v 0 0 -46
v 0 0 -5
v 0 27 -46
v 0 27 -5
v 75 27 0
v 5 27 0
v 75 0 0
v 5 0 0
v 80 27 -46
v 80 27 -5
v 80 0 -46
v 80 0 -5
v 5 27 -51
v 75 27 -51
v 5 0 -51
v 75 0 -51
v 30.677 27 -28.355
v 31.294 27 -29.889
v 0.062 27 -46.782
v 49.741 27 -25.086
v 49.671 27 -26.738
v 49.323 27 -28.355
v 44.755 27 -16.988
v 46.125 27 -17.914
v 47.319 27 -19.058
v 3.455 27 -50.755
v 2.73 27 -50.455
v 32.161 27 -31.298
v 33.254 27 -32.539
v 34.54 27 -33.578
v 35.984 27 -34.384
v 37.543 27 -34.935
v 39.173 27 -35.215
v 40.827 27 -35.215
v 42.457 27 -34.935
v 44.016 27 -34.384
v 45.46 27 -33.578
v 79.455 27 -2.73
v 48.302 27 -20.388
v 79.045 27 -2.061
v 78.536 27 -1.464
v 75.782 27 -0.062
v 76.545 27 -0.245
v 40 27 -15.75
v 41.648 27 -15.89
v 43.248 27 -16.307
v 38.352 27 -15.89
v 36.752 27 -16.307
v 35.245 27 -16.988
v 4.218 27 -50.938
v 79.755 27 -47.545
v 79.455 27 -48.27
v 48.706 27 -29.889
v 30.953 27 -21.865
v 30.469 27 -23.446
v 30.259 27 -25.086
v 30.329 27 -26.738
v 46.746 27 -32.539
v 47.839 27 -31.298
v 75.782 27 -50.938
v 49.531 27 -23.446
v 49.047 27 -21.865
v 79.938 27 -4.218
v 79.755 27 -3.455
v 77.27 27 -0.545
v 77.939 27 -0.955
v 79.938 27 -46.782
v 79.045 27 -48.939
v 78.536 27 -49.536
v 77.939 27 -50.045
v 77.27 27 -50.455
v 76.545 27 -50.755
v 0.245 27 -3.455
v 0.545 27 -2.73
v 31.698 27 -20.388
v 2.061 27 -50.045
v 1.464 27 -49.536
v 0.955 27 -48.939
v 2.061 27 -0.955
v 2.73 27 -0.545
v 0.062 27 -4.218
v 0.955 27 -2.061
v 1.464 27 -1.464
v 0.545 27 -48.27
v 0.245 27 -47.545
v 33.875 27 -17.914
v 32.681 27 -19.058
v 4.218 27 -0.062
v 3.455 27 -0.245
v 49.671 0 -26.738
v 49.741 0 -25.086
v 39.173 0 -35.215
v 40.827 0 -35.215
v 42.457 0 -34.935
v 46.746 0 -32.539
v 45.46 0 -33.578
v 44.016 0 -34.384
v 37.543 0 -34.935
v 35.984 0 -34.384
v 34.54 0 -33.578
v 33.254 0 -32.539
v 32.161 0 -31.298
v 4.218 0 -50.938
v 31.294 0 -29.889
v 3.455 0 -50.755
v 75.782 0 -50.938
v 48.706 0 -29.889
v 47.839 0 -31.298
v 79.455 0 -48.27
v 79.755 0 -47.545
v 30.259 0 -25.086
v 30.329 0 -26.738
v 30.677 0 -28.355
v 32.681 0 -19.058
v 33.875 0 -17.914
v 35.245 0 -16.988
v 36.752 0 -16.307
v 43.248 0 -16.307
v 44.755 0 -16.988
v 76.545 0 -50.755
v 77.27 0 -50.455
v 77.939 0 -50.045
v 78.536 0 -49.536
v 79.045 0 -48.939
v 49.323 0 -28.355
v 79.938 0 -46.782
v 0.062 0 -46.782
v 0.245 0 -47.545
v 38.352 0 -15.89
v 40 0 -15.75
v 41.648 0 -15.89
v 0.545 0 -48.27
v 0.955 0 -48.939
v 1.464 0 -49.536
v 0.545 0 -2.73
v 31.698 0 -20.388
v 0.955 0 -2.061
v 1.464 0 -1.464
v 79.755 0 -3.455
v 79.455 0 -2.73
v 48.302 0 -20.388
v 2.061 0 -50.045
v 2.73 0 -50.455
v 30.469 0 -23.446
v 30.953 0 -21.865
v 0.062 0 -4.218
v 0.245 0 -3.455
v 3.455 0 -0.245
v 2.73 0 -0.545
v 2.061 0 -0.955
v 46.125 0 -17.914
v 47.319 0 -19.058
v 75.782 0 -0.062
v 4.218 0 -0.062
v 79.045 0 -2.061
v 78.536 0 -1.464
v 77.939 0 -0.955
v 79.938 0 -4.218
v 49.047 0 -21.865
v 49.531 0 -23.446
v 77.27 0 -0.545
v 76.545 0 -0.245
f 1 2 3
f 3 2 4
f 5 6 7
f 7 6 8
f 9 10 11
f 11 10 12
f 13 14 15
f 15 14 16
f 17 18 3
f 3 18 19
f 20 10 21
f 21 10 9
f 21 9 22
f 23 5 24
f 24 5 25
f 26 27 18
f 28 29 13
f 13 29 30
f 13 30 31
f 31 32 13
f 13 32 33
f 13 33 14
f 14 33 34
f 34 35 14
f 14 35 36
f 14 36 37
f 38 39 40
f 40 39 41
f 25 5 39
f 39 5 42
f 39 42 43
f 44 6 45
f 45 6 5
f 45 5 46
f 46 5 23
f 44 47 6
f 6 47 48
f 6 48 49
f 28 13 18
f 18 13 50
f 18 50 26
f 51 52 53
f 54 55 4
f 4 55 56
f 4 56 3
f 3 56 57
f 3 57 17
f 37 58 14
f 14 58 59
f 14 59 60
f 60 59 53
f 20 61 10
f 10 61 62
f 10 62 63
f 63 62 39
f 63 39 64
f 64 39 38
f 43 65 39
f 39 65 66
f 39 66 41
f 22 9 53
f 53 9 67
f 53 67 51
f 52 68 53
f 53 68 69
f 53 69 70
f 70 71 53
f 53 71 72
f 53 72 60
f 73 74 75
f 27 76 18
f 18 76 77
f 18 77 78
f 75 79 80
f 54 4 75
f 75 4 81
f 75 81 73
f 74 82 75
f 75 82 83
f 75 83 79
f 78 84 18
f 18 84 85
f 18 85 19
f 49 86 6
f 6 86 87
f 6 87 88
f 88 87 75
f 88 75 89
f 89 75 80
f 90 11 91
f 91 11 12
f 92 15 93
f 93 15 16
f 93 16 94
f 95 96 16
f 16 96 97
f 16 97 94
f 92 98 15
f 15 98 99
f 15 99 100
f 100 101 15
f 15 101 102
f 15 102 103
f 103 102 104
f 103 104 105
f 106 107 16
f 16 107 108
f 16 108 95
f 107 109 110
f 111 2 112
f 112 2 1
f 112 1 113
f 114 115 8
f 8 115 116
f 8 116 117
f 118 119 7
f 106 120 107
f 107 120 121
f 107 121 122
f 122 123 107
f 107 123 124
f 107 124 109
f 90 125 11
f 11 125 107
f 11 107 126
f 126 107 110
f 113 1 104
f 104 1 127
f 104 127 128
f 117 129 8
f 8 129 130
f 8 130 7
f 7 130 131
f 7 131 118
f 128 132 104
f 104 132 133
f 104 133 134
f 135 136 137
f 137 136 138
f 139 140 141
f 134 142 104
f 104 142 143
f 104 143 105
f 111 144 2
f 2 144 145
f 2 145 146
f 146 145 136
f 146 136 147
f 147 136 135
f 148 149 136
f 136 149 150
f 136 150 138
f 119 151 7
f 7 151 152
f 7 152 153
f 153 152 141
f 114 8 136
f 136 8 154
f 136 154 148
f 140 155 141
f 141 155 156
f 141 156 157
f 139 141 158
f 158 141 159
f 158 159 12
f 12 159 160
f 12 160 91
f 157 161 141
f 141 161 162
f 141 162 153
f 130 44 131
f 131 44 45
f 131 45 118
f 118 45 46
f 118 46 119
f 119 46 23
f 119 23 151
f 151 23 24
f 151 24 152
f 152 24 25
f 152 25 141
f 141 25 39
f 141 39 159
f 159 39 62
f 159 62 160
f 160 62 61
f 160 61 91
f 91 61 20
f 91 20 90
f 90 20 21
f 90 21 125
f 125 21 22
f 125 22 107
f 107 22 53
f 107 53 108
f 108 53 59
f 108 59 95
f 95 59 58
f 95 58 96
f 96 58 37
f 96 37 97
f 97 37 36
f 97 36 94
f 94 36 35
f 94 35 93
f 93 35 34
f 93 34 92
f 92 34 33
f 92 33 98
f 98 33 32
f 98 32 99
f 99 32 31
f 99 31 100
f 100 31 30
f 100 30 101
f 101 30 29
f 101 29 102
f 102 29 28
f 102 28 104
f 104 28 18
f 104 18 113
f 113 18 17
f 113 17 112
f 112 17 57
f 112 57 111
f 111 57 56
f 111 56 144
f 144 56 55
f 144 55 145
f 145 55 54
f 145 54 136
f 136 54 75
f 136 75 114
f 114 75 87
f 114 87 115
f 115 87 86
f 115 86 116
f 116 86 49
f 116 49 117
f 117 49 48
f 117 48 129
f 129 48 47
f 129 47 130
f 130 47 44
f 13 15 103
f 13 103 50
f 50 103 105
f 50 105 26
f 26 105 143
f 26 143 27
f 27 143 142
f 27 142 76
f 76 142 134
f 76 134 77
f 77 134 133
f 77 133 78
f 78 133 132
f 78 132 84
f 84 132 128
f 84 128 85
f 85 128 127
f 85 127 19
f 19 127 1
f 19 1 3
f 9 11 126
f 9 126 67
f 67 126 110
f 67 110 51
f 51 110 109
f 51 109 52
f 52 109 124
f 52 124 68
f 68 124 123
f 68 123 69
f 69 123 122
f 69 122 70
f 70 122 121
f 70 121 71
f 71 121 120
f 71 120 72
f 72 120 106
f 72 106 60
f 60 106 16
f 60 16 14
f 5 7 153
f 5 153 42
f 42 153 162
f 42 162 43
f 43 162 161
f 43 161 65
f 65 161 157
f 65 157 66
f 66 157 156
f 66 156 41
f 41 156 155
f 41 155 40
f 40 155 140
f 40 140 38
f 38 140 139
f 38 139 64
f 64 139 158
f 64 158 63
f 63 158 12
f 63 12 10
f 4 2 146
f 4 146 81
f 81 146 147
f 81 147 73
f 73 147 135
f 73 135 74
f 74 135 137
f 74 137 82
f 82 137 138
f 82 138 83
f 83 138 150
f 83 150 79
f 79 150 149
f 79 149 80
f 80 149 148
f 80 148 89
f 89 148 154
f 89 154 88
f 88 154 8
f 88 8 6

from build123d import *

# Parameters (mm, degrees)
CROQUIS1_W              = 80
CROQUIS1_H              = 51
SALIENTE_EXTRUIR1_DEPTH = 27
CROQUIS2_R              = 9.75
CORTAR_EXTRUIR1_DEPTH   = 27
REDONDEO1_R             = 5


with BuildPart() as part:
    # Croquis1 → Saliente-Extruir1 (new body)
    with BuildSketch(Plane(origin=(0, 0, 0), x_dir=(1, 0, 0), z_dir=(0, 1, 0))):
        with Locations((40, 25.5)):
            Rectangle(CROQUIS1_W, CROQUIS1_H)
    extrude(amount=SALIENTE_EXTRUIR1_DEPTH)

    # Croquis2 → Cortar-Extruir1 (cut)
    with BuildSketch(Plane(origin=(0, 27, 0), x_dir=(1, 0, 0), z_dir=(0, 1, 0))):
        with Locations(Location((40, 25.5, 0), (0, 0, 270))):
            Circle(CROQUIS2_R)
    extrude(amount=-CORTAR_EXTRUIR1_DEPTH, mode=Mode.SUBTRACT)

    # Redondeo1
    redondeo1_edges = [part.edges().sort_by_distance(p)[0] for p in [
        (0, 13.5, -51),
        (80, 13.5, -51),
        (80, 13.5, 0),
        (0, 13.5, 0),
    ]]
    fillet(redondeo1_edges, radius=REDONDEO1_R)


solid = part.part
